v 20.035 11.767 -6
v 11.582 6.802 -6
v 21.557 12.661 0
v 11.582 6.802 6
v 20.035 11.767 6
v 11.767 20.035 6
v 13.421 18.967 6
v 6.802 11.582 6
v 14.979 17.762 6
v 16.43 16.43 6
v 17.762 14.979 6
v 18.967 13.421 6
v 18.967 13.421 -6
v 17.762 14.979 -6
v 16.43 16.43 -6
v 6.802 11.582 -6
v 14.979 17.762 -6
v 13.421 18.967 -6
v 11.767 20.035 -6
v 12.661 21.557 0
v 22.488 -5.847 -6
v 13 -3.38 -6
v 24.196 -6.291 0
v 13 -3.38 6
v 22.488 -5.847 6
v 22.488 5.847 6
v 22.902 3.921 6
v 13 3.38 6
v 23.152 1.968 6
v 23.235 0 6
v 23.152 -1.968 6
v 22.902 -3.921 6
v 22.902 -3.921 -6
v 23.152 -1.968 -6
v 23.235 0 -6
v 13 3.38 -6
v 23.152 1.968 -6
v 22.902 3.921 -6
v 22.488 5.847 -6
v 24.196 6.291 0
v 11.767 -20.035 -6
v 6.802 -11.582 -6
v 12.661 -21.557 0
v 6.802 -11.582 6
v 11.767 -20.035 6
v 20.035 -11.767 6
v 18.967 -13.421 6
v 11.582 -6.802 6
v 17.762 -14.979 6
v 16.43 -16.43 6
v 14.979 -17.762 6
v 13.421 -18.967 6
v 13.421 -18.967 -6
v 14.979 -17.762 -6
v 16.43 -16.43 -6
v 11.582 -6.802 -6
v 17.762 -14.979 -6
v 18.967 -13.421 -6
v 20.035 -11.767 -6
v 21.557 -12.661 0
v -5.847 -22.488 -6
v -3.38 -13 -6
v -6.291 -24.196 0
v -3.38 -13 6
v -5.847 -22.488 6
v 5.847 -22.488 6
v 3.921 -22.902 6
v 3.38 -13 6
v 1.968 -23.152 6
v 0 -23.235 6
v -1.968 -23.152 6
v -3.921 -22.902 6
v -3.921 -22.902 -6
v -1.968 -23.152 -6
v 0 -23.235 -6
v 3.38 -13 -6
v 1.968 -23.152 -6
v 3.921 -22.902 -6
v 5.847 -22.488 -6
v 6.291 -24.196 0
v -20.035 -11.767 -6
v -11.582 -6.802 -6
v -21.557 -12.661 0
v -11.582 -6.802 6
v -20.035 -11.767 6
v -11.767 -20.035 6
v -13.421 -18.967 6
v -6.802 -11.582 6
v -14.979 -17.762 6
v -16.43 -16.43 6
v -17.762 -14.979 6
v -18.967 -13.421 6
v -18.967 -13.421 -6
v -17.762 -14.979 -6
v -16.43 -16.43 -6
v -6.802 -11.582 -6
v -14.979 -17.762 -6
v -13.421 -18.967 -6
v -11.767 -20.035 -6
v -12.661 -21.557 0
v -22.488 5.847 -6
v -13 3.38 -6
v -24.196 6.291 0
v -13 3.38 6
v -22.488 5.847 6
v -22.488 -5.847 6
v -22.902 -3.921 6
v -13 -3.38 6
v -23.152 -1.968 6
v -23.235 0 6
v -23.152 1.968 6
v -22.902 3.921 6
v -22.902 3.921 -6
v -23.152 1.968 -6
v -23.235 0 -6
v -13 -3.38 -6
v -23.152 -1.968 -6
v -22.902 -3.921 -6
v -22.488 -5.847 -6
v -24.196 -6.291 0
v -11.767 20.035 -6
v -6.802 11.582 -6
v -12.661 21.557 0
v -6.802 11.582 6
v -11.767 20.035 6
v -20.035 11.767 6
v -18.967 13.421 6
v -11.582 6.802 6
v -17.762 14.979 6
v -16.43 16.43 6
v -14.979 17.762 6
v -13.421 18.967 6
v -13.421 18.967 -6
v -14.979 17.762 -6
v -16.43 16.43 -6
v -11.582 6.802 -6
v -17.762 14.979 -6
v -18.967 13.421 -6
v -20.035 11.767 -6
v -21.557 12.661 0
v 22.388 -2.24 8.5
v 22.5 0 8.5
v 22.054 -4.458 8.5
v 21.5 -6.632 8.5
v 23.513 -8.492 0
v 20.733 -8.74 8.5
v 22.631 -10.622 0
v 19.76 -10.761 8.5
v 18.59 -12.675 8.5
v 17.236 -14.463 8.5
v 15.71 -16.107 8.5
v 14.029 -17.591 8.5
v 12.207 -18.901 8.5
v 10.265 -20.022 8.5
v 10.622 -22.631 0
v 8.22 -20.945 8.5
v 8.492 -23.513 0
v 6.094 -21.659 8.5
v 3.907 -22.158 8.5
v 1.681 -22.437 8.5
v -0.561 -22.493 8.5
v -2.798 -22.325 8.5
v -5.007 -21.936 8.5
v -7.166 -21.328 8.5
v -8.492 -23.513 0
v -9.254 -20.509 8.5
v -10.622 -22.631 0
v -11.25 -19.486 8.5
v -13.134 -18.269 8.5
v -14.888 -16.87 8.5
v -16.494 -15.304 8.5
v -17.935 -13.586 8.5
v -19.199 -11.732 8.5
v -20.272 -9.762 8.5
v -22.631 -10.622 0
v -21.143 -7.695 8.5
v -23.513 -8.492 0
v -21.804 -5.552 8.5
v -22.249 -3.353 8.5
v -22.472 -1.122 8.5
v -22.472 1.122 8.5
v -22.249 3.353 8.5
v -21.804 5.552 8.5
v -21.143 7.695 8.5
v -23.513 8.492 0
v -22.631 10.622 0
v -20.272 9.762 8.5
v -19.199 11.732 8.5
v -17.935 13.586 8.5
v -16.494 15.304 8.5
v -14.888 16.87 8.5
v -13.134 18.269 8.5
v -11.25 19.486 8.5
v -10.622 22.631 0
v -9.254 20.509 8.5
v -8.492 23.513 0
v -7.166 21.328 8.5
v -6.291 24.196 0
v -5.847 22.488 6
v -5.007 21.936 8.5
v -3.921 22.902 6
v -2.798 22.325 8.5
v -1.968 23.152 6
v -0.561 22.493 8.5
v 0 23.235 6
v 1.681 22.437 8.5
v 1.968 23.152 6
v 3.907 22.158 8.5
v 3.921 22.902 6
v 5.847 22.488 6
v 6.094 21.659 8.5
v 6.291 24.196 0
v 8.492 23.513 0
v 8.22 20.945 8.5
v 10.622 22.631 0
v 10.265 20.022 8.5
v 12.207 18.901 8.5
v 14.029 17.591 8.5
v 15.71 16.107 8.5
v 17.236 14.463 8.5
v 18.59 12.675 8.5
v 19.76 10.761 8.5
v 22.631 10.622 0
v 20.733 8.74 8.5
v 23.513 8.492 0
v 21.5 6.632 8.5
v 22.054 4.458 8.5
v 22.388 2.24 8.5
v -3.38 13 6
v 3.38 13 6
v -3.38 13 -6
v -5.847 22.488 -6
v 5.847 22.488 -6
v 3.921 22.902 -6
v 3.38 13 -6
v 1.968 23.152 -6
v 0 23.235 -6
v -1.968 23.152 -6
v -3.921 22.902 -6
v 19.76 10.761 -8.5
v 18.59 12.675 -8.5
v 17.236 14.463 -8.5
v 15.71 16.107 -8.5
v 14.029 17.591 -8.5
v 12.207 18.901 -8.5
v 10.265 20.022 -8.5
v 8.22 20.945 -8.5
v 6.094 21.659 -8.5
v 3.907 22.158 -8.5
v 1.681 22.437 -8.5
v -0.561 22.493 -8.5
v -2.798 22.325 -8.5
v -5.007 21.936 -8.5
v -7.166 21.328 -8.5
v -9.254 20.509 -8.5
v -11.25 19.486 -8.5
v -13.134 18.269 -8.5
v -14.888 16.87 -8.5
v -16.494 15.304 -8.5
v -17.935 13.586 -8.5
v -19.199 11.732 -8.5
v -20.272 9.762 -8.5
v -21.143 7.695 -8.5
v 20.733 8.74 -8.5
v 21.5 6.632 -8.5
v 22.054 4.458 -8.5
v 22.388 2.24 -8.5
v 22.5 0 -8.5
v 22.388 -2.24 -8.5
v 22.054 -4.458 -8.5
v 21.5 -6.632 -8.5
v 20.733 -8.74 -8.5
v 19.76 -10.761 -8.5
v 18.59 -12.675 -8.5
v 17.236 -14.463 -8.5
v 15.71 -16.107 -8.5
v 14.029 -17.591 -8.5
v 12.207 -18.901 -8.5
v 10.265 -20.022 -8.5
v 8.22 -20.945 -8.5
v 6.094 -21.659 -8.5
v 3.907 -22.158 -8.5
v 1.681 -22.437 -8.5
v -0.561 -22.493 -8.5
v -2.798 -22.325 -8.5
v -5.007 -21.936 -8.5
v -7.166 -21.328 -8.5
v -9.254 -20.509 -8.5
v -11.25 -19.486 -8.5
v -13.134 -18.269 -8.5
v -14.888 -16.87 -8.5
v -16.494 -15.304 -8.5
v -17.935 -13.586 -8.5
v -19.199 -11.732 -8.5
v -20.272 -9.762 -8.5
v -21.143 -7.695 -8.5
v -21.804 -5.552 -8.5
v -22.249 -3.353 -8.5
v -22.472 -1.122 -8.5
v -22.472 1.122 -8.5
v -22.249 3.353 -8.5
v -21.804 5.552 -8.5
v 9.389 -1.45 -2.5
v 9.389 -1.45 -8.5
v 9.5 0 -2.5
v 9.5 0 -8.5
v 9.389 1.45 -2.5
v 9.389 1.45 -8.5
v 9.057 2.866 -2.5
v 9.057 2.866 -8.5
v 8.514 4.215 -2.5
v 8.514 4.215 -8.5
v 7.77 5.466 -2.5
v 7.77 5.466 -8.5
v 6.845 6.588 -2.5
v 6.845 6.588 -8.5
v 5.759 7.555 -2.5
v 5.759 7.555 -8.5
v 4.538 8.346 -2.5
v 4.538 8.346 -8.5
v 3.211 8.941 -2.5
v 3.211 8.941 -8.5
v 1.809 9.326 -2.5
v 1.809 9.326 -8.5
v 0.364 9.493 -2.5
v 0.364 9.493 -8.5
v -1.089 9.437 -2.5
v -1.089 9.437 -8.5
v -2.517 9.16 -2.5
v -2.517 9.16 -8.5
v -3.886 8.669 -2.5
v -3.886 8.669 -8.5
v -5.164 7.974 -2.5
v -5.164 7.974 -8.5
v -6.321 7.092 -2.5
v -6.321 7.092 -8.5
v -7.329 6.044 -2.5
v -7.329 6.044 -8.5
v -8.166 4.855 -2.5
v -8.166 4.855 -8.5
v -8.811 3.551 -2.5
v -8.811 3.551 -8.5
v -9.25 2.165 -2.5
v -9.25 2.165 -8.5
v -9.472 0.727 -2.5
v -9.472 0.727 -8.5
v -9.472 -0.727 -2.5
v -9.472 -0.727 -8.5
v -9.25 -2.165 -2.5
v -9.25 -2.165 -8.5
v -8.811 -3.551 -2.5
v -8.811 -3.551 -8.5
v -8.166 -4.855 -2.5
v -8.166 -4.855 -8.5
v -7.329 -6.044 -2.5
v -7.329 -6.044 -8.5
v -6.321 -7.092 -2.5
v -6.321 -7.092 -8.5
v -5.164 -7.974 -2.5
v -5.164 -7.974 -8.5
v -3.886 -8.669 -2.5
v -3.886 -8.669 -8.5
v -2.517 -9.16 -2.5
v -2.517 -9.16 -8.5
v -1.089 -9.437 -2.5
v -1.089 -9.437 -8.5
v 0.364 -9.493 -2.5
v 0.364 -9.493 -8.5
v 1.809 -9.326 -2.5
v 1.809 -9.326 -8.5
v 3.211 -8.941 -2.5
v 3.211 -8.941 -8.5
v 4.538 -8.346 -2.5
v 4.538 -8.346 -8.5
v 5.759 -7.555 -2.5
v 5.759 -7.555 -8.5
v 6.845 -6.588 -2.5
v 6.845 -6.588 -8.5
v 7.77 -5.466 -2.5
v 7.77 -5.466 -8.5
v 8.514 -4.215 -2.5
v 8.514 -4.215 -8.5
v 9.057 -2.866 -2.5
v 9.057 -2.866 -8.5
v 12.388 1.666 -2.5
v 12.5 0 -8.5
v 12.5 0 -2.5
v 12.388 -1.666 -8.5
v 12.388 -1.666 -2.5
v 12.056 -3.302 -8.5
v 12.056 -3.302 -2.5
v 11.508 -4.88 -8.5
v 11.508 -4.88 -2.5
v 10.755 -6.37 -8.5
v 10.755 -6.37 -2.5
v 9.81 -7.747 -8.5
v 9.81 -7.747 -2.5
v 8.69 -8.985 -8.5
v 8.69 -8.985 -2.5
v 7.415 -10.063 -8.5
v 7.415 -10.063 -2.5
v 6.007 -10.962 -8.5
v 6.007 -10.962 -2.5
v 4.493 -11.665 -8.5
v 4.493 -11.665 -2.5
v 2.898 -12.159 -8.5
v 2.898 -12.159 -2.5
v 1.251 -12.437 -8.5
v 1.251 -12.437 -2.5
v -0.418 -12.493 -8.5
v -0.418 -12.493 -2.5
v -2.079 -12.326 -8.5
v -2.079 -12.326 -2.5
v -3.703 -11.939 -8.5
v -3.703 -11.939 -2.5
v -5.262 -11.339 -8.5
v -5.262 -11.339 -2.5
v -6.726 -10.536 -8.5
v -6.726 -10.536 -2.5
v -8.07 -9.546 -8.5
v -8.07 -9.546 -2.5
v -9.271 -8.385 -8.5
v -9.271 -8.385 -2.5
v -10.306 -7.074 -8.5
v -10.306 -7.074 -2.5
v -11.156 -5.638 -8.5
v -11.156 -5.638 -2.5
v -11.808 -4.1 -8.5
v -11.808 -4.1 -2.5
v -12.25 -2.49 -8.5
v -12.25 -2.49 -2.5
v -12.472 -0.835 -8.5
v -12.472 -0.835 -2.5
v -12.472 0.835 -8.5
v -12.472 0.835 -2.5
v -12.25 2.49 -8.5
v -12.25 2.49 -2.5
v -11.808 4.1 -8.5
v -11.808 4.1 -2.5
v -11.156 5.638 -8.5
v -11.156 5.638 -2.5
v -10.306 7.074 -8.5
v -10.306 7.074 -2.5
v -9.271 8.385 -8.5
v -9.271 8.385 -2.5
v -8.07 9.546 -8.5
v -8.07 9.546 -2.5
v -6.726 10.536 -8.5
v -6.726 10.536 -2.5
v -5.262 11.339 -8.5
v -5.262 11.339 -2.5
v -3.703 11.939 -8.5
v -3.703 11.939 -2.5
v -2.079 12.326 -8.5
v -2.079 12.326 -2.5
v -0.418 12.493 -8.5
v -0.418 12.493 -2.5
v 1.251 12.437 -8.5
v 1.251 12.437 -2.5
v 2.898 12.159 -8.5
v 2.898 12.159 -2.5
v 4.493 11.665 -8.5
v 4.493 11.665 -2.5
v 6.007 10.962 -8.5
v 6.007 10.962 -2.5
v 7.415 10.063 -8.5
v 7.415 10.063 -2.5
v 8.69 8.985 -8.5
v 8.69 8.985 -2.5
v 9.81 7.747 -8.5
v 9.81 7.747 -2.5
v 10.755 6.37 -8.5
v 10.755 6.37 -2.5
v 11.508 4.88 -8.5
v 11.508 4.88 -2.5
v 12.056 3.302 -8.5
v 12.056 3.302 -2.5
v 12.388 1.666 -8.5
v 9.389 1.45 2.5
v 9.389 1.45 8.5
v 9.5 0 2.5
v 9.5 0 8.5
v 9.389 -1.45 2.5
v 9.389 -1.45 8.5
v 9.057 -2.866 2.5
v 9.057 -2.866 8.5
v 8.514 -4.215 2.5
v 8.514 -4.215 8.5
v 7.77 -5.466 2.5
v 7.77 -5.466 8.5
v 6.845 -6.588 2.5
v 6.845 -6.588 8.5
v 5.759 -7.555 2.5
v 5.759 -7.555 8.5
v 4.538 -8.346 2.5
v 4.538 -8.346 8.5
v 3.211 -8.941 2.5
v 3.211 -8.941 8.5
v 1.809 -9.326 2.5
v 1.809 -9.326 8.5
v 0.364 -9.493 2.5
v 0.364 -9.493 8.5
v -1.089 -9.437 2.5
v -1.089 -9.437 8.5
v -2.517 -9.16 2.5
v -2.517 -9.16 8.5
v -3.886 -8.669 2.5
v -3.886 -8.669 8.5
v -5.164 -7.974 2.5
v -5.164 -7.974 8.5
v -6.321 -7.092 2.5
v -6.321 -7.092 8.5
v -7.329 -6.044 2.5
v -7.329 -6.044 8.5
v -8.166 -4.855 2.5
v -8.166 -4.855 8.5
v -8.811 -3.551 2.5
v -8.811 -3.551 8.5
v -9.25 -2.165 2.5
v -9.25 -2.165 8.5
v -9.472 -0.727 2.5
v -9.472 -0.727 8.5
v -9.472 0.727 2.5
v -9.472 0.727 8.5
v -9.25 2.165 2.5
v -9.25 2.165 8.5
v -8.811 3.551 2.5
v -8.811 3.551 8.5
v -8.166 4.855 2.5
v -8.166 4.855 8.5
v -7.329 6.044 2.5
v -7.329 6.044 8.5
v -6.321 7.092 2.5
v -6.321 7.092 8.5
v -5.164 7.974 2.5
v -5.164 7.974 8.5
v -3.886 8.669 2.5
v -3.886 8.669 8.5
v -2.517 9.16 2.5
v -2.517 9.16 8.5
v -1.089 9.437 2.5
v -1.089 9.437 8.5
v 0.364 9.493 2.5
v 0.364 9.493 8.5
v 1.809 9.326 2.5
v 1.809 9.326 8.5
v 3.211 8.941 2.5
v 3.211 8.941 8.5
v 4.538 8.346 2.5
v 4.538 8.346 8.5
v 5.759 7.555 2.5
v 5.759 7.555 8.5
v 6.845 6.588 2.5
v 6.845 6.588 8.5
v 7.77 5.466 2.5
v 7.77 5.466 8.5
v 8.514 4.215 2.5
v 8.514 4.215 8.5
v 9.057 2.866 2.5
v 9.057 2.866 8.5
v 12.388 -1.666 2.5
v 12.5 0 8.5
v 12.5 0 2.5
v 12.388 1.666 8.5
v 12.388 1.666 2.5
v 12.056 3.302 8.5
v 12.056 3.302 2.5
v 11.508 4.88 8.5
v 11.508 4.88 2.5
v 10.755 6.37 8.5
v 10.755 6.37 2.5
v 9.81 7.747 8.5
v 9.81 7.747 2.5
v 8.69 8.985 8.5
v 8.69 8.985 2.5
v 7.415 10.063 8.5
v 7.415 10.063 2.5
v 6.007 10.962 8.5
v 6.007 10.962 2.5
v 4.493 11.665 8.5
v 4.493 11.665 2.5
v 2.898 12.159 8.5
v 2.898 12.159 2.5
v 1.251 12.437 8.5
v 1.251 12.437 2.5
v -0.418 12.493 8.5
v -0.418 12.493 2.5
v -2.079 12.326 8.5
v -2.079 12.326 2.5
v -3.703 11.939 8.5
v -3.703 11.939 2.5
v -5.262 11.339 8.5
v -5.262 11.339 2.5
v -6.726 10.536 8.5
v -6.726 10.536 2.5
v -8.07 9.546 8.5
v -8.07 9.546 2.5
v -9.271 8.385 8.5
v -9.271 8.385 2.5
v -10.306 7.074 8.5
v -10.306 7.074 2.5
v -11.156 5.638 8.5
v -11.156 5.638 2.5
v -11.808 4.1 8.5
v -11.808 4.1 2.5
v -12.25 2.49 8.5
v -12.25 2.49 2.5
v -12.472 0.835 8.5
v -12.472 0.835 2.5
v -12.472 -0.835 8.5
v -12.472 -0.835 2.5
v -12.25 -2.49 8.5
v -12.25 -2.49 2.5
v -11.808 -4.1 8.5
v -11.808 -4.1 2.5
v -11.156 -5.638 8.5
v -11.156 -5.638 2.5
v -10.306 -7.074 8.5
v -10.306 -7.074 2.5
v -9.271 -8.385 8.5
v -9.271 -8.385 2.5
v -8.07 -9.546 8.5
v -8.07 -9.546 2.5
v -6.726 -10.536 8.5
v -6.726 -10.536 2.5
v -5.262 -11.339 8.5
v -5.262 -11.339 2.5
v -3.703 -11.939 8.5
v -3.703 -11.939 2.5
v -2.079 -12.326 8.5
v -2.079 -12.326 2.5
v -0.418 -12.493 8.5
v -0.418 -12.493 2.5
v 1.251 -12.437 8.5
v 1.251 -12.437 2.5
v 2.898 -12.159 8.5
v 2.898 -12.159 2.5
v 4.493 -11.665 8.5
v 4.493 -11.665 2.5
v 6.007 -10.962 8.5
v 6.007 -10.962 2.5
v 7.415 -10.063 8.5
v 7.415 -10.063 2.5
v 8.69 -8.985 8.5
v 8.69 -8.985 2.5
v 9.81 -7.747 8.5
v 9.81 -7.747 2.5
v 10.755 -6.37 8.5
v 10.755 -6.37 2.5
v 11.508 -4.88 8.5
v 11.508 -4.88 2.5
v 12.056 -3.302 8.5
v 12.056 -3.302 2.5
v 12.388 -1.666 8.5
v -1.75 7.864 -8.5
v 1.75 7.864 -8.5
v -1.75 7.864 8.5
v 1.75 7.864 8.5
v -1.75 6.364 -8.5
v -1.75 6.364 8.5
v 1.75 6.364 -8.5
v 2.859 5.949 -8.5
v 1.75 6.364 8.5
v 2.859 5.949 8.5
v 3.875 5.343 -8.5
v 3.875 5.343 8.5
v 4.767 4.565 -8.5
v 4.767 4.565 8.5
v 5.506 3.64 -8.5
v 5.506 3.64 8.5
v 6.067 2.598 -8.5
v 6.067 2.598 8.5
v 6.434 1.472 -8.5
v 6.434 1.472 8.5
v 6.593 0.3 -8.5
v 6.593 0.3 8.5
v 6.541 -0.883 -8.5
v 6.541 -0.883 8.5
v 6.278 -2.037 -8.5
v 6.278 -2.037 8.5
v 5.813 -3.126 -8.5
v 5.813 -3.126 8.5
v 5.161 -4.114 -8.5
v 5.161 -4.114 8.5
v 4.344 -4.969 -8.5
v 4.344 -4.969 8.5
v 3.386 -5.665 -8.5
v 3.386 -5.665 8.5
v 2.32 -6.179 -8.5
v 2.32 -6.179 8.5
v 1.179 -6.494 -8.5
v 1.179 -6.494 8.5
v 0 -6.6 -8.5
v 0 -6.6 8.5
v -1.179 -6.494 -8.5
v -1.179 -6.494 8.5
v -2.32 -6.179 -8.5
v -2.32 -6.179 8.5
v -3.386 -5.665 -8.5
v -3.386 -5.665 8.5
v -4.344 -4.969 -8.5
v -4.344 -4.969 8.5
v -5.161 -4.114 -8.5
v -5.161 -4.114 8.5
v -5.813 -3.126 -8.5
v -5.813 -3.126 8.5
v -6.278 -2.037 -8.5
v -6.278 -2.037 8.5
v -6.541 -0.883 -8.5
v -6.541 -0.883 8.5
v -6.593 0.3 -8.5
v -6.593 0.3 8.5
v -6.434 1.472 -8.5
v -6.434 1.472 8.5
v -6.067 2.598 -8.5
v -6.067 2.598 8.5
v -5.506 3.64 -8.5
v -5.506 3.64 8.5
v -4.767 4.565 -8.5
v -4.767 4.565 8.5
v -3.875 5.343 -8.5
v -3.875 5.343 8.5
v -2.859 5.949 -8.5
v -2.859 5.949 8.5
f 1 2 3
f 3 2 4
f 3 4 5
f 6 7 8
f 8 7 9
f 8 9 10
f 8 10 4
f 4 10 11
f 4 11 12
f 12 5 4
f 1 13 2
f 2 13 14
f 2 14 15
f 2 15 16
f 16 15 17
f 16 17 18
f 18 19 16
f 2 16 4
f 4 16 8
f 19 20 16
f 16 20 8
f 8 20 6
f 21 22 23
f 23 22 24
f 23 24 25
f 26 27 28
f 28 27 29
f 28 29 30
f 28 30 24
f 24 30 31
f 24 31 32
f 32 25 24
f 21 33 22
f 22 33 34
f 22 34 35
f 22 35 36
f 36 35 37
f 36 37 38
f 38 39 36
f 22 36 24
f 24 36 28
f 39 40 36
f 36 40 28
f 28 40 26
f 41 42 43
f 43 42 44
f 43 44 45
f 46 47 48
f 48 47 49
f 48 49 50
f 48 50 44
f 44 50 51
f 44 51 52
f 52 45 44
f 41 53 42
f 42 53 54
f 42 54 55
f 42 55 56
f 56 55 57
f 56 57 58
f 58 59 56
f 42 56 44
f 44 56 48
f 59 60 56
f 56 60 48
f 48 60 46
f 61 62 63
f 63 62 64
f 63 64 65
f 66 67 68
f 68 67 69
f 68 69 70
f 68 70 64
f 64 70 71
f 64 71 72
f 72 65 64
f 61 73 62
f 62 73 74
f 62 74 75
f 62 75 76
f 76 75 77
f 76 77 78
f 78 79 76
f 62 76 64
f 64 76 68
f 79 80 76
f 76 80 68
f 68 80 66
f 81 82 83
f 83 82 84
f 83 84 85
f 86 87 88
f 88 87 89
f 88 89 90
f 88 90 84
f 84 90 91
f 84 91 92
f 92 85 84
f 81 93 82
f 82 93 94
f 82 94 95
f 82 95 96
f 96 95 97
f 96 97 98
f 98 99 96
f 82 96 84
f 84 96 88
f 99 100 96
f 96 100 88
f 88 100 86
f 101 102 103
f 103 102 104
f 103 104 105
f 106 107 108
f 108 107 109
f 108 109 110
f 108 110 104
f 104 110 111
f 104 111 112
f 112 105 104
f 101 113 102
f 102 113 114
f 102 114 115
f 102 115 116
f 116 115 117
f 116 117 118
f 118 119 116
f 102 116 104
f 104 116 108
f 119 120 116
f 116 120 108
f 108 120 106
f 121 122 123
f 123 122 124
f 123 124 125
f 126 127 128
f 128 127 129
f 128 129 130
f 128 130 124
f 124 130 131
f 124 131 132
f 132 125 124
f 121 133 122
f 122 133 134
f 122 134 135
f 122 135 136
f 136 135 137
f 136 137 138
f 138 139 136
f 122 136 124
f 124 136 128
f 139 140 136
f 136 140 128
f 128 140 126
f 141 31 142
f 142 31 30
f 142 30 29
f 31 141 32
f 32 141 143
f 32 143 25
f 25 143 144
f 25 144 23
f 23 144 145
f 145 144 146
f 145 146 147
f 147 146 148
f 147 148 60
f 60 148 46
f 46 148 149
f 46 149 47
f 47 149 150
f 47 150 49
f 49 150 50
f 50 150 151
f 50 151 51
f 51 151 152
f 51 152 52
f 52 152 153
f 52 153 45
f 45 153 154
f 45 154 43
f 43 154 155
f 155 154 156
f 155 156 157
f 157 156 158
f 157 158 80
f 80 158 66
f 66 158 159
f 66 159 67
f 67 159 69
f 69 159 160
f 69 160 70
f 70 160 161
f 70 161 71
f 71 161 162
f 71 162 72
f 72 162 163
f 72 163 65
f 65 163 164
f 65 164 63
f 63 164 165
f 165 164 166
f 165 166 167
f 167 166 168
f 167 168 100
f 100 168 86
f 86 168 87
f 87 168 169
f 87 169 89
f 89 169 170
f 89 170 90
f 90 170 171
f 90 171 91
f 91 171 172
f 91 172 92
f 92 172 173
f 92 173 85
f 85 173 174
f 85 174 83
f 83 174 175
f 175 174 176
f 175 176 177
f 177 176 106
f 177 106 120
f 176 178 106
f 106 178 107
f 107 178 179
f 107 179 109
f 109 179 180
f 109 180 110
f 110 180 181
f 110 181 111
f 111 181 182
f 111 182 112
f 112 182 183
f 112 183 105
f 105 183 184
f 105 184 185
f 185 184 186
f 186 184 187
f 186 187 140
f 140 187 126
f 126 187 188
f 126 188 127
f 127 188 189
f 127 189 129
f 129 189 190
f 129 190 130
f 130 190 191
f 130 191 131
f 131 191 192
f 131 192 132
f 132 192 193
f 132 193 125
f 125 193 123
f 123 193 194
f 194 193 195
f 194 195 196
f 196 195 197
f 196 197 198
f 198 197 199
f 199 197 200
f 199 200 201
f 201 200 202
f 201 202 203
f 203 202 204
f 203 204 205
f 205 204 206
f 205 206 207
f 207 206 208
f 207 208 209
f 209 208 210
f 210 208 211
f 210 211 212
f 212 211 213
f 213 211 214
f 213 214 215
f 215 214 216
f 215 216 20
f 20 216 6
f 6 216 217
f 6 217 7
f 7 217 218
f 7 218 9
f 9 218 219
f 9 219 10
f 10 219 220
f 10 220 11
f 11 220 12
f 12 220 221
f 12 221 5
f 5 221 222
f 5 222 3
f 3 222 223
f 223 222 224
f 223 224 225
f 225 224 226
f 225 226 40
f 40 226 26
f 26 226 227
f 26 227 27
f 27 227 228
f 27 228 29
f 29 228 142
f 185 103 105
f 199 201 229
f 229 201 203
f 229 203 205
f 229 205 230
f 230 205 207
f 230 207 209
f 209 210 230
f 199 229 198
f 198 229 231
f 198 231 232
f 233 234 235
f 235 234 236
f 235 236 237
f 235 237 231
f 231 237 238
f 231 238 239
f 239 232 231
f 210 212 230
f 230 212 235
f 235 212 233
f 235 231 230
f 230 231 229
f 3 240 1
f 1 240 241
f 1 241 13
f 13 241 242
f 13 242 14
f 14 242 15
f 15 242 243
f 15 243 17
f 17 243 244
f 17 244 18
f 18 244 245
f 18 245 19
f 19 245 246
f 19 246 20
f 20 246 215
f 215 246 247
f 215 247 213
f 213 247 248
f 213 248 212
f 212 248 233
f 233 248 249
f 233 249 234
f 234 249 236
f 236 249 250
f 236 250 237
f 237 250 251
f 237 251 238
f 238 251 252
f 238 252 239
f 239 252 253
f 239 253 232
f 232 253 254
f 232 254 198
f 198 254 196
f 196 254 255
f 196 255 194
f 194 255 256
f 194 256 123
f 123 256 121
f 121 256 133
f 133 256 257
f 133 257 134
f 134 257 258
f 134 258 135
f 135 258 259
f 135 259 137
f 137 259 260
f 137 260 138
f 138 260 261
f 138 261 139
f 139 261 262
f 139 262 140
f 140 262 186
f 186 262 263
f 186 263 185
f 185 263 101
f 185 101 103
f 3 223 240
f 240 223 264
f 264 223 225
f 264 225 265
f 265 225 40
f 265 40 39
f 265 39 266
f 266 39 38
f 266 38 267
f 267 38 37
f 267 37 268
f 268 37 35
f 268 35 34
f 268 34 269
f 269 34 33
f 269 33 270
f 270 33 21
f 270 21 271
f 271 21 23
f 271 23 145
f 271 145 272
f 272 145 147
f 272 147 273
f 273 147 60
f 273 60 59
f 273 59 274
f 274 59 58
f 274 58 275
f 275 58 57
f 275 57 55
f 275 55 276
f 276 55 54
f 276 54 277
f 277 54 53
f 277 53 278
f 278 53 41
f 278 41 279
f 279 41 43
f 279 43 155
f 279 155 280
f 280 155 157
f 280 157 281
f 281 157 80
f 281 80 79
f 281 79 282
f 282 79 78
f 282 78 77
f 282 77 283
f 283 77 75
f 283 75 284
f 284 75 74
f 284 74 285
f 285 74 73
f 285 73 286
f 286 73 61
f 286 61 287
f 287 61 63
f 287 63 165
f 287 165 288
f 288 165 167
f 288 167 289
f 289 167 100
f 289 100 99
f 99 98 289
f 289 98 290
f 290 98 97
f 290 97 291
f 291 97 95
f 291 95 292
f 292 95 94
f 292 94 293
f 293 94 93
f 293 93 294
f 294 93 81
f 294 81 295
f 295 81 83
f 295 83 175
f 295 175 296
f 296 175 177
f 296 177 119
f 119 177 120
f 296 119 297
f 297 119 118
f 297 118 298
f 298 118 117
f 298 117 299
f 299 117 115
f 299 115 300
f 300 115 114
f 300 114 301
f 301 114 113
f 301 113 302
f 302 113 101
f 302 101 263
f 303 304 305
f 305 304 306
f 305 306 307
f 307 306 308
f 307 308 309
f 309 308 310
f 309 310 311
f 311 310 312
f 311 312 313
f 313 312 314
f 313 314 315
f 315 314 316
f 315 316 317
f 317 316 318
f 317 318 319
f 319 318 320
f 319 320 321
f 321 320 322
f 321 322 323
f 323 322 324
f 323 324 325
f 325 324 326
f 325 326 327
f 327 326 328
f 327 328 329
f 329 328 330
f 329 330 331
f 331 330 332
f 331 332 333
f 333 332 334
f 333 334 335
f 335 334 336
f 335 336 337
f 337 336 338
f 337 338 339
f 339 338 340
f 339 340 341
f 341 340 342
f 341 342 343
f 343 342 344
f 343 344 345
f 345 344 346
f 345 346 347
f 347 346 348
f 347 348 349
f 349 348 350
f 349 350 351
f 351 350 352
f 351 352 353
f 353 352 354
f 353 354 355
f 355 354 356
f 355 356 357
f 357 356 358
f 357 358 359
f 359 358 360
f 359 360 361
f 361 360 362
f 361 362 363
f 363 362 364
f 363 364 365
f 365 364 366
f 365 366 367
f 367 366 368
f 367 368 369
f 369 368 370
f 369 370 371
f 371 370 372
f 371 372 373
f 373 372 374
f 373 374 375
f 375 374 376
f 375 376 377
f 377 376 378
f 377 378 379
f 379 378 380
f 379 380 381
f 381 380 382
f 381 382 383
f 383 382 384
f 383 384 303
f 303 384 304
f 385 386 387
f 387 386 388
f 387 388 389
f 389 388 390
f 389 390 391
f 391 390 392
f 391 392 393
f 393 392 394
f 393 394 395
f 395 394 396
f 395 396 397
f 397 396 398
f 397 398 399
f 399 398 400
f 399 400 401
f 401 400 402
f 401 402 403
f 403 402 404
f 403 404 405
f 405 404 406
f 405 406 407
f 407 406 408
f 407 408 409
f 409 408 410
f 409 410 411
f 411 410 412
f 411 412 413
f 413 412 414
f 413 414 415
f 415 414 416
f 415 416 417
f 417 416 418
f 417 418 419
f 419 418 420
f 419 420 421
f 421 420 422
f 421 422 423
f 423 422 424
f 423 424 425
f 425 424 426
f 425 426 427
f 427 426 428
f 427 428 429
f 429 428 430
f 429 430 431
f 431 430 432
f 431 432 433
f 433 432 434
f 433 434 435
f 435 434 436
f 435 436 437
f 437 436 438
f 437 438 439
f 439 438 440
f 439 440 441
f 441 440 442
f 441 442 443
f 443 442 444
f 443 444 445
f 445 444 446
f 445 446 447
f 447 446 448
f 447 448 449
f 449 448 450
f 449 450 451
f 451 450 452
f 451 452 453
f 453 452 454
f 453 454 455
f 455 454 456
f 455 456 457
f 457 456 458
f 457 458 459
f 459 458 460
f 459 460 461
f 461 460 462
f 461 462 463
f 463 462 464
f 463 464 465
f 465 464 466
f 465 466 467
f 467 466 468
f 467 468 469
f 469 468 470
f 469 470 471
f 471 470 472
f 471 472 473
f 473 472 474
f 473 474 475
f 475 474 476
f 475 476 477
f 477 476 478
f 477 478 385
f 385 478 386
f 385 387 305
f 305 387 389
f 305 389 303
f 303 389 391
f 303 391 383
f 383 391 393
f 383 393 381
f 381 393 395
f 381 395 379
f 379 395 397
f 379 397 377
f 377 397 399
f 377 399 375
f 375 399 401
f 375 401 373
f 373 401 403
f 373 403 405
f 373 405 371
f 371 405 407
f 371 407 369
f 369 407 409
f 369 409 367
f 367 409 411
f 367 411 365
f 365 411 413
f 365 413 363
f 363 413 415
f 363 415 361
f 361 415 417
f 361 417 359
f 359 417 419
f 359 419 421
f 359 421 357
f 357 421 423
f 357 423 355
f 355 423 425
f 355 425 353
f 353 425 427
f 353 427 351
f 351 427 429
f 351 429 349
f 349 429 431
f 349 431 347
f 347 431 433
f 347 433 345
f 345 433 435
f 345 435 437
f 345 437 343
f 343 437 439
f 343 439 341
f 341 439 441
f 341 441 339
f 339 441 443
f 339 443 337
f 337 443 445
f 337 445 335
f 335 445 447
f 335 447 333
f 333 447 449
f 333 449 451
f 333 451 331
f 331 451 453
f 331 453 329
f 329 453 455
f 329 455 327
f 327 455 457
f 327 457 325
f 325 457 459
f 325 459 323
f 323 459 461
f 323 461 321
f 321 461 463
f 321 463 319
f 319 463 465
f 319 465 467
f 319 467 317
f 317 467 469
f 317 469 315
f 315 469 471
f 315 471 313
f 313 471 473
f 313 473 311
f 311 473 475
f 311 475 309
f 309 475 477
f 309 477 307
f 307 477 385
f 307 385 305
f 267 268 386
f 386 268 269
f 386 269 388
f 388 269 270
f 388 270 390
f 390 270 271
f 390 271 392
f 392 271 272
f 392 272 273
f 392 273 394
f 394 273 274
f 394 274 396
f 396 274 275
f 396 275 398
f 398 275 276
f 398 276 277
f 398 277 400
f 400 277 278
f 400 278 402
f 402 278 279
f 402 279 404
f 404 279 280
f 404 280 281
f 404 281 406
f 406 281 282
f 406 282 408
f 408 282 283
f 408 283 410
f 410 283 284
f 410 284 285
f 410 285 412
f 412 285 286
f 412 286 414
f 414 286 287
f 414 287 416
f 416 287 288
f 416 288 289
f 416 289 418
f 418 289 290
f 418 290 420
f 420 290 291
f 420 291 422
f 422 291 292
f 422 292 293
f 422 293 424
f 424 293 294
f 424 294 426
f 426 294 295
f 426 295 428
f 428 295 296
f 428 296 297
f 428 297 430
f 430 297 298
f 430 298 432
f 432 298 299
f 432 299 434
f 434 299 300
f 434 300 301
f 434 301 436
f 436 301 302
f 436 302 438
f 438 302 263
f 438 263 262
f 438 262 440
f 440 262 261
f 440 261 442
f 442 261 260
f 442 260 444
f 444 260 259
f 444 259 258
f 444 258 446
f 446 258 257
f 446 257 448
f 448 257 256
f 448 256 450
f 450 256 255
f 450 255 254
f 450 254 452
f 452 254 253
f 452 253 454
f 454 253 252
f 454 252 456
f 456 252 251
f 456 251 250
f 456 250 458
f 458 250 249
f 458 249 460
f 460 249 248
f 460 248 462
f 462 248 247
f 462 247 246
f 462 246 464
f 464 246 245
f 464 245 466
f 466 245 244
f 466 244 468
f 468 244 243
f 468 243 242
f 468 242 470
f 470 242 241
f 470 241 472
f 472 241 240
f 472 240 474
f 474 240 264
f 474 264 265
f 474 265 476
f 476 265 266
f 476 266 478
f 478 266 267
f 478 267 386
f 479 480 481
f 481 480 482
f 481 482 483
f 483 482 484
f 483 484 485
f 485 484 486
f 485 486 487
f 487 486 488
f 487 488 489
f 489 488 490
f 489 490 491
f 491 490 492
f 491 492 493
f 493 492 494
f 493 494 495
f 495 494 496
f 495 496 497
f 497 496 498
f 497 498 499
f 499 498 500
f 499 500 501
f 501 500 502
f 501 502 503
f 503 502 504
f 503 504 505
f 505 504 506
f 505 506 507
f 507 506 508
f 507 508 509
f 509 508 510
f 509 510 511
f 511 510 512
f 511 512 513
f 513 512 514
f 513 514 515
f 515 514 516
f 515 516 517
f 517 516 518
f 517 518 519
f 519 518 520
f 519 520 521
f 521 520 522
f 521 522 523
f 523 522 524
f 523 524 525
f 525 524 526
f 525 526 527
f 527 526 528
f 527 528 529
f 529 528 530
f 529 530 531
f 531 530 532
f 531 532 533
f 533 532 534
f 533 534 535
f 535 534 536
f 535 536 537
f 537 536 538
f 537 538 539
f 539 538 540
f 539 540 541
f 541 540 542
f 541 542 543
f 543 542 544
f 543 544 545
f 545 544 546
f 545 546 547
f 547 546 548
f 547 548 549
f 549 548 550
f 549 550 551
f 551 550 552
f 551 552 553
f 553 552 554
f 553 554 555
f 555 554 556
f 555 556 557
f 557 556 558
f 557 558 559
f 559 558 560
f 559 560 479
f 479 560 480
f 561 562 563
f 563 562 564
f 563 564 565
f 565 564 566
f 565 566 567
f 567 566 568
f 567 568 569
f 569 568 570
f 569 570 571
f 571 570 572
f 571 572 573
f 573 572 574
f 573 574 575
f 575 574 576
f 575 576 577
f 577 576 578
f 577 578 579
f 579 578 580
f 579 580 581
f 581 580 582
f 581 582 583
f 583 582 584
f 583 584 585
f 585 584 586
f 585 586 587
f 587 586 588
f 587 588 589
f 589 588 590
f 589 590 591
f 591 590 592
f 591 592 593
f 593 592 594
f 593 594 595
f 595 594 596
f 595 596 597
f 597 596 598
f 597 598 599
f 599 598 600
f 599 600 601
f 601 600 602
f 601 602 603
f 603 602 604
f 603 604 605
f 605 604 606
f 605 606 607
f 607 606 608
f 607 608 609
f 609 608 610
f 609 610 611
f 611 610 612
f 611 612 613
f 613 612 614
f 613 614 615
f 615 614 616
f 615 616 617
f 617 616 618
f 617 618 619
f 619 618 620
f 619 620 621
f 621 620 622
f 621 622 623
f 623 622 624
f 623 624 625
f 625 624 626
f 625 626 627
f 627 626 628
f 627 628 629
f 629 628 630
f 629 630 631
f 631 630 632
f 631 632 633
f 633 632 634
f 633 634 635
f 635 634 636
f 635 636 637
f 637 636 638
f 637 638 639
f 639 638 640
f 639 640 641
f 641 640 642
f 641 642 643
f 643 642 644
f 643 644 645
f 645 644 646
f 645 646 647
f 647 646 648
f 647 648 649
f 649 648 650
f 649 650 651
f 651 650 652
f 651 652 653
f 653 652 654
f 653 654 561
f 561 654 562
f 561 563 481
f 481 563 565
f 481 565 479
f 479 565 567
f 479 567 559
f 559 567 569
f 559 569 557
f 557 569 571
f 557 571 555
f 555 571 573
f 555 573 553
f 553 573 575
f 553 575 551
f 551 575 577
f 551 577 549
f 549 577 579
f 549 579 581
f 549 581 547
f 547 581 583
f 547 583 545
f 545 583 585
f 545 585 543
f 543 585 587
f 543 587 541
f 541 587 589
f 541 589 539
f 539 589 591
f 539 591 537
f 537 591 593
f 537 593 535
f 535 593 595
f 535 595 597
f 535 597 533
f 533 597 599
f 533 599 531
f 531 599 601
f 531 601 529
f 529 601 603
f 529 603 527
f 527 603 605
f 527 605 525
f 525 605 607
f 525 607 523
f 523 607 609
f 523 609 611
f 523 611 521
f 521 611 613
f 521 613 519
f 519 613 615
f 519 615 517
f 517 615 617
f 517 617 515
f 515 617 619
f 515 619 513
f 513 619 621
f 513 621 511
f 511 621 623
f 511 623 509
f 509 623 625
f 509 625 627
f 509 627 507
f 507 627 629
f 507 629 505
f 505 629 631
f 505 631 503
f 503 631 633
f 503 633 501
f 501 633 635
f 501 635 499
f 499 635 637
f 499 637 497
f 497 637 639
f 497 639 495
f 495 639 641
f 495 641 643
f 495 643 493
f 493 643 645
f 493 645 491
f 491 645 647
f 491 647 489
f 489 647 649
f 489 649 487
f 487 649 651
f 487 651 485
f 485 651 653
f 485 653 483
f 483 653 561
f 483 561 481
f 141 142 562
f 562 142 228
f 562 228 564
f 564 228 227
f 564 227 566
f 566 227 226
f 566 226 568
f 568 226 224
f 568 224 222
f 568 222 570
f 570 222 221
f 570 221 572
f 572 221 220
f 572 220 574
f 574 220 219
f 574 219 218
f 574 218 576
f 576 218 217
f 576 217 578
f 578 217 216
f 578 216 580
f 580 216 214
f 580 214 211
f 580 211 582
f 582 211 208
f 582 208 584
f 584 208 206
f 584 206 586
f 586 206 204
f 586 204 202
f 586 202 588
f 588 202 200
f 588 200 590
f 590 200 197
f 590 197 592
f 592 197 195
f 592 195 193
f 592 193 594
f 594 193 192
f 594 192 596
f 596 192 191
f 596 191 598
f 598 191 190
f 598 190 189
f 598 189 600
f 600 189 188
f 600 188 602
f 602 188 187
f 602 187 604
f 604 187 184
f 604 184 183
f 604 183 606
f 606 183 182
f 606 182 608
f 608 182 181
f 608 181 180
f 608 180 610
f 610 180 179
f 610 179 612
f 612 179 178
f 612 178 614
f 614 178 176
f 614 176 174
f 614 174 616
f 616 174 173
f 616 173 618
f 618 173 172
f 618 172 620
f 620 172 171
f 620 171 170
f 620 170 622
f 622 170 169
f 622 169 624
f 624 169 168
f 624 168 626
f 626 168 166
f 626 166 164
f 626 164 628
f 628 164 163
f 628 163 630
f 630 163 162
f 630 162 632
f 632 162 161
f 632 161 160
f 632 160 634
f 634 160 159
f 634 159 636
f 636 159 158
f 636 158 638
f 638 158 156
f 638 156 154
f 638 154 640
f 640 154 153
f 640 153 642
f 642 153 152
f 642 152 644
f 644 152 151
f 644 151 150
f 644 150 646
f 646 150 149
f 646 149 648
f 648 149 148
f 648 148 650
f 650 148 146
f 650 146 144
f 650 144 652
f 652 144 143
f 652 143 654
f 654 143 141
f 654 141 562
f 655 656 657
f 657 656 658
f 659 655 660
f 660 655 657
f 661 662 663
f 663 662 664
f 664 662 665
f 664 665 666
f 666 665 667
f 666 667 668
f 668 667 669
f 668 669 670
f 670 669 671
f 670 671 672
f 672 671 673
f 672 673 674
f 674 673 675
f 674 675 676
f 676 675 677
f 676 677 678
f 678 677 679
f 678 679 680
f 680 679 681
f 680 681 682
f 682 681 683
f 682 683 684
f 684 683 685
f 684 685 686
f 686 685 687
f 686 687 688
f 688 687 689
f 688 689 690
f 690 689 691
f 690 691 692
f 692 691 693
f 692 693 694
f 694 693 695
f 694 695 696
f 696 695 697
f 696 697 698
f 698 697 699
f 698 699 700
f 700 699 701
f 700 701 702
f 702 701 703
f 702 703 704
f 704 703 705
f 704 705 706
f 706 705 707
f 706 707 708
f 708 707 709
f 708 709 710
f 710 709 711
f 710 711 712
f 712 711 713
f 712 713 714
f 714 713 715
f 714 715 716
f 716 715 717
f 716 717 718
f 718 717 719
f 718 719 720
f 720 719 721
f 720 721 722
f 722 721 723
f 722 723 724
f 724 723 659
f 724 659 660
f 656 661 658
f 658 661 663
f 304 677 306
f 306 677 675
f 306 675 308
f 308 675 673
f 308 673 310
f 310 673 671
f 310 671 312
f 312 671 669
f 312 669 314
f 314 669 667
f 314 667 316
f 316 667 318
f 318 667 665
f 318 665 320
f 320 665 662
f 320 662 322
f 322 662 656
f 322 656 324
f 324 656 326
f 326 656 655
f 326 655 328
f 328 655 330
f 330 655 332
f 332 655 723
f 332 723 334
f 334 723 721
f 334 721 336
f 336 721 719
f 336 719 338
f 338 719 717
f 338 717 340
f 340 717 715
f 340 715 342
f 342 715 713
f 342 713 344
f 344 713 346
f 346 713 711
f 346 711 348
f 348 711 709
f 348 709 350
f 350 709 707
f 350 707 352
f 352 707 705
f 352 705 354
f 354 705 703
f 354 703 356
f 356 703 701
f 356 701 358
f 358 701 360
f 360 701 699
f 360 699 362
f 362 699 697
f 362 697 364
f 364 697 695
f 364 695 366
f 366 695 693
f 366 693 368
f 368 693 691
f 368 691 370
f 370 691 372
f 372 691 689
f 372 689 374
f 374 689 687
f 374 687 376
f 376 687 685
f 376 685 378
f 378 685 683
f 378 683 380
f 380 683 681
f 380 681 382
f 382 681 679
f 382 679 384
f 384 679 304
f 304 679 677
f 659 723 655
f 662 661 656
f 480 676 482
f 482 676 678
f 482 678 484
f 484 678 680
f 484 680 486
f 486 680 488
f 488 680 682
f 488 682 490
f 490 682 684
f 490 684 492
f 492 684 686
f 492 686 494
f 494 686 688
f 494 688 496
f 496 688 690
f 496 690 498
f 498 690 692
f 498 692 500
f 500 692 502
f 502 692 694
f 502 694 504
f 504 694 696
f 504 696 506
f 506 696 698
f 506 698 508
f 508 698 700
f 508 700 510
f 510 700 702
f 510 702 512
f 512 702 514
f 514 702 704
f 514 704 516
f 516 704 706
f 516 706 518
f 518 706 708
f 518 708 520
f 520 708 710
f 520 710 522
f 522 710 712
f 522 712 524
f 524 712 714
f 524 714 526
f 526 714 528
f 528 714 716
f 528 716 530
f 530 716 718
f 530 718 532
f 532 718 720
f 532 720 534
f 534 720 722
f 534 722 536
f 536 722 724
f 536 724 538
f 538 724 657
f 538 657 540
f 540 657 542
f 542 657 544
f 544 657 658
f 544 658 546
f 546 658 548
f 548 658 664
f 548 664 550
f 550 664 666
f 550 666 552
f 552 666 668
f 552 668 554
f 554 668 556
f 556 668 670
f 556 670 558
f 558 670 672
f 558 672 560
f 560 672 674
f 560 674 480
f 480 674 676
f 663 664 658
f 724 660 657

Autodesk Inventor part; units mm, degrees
ref_plane "YZ Plane" through (0, 0, 0) normal (1, 0, 0) x (0, 1, 0)
ref_plane "XZ Plane" through (0, 0, 0) normal (0, 1, 0) x (-1, 0, 0)
ref_plane "XY Plane" through (0, 0, 0) normal (0, 0, 1) x (1, 0, 0)
sketch "Sketch1" plane through (0, 0, 0) normal (0, 0, 1) x (1, 0, 0)
  circle A0 centre (0, 0) radius 22.5
  dimension "d0" = 45
extrude "Extrusion1" add sketch "Sketch1" along normal mid plane 17
sketch "Sketch2" plane through (0, 0, 8.5) normal (0, 0, 1) x (1, 0, 0)
  circle A0 centre (0, 0) radius 6.6
  line L0 (-1.75, 7.8638) -> (1.75, 7.8638)
  line L1 (1.75, 7.8638) -> (1.75, 6.3638)
  line L2 (1.75, 6.3638) -> (-1.75, 6.3638)
  line L3 (-1.75, 6.3638) -> (-1.75, 7.8638)
  dimension "d3" = 13.2
  dimension "d4" = 3.5
  dimension "d5" = 1.5
extrude "Extrusion2" cut sketch "Sketch2" against normal through all
sketch "Sketch3" plane through (0, 0, 8.5) normal (0, 0, 1) x (1, 0, 0)
  circle A0 centre (0, 0) radius 9.5
  circle A1 centre (0, 0) radius 12.5
  dimension "d8" = 19
  dimension "d9" = 3
extrude "Extrusion3" cut sketch "Sketch3" against normal blind 6
mirror "Mirror1" about plane through (0, 0, 0) normal (0, 0, 1) of "Extrusion3"
sketch "Sketch4" plane through (0, 0, 0) normal (0, 1, 0) x (-1, 0, 0)
  line L0 (22.5, -8.5) -> (22.5, 8.5) projected
  line L1 (22.5, -8.5) -> (25, 0)
  line L2 (25, 0) -> (22.5, 8.5)
  line L3 (-22.5, -8.5) -> (22.5, -8.5) projected
  line L4 (34.5, 0) -> (-32, 0) projected
  line L5 (0, -11.9) -> (0, 11.9) projected
  point P0 (0, 0)
  dimension "d12" = 2.5
revolve "Revolution1" add sketch "Sketch4" angle 360 about axis through (0, 0, -10) along (0, 0, 1) contours L0 L4 L1 | L0 L2 L4
sketch "Sketch5" plane through (0, 0, 0) normal (0, 0, 1) x (1, 0, 0)
  line L0 (-6.5, 25) -> (-3.38, 13)
  line L1 (-3.38, 13) -> (3.38, 13)
  line L2 (3.38, 13) -> (6.5, 25)
  line L3 (6.5, 25) -> (-6.5, 25)
  circle A0 centre (0, 0) radius 25 construction
  line L4 (0, -35) -> (0, 35) construction
  point P0 (0, 13)
  point P1 (0, 25)
  dimension "d14" = 13
  dimension "d15" = 12
extrude "Extrusion4" cut sketch "Sketch5" along normal mid plane 12
pattern_circular "Circular Pattern1" count 8 over 360 about axis through (0, 0, -10) along (0, 0, 1) of "Extrusion4"
sketch "Sketch6" plane through (0, 0, 0) normal (0, 0, 1) x (1, 0, 0)
  circle A0 centre (0, 0) radius 20.5
  dimension "d21" = 41
properties part number "omniwheel"
